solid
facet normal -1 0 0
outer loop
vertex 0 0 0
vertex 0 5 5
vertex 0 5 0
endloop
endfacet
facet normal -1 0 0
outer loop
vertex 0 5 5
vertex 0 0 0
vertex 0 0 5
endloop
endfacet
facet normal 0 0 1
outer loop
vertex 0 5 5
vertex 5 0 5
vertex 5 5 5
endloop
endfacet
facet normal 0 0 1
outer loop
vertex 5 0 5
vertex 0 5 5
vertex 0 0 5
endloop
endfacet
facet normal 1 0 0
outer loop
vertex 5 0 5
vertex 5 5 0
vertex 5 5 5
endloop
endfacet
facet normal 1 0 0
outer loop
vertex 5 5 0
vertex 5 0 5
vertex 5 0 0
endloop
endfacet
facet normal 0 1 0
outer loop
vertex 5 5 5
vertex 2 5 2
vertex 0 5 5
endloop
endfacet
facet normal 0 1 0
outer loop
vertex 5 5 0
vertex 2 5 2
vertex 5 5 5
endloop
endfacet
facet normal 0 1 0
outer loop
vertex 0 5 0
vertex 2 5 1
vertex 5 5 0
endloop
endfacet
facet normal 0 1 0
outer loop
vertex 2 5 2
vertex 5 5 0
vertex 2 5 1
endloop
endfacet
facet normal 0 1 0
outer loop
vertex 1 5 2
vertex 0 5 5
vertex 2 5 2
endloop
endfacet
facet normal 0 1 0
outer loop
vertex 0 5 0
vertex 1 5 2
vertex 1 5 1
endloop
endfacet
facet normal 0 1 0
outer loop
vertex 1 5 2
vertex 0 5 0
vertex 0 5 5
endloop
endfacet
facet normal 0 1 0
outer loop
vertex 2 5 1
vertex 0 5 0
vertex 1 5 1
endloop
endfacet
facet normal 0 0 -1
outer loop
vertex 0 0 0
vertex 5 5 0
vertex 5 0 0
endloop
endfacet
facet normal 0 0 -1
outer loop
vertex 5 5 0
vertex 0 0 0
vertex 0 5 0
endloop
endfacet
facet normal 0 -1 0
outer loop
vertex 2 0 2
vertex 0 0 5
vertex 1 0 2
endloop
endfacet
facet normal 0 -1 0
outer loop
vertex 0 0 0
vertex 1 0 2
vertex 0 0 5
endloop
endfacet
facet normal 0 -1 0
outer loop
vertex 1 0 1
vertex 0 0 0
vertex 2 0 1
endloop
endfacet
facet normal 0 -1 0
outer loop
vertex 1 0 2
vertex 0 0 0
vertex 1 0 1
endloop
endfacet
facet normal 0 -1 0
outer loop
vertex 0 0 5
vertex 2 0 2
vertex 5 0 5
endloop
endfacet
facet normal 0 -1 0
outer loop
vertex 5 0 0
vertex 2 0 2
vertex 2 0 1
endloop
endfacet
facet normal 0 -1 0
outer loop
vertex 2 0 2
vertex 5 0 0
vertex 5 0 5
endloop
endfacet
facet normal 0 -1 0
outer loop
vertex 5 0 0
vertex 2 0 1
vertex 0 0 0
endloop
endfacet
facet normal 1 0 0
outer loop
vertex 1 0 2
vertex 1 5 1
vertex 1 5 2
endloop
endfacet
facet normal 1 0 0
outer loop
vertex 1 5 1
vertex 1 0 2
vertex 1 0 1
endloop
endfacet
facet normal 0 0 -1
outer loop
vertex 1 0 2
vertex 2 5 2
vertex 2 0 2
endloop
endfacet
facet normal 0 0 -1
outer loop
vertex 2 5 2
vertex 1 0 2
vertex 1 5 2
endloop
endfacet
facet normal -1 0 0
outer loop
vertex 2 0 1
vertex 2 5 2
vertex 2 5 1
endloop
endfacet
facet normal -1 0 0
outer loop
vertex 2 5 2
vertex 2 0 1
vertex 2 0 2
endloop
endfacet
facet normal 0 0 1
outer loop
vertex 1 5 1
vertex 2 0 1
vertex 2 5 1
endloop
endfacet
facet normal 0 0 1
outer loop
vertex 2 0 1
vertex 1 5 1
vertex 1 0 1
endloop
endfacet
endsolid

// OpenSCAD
difference() {
  translate([2.5000000000, 2.5000000000, 2.5000000000]) {
    scale([5.0000000000, 5.0000000000, 5.0000000000]) {
      translate([-0.5000000000, -0.5000000000, -0.5000000000]) {
        cube([1, 1, 1]);
      }
    }
  }
  translate([1.5000000000, 2.5000000000, 1.5000000000]) {
    scale([1.0000000000, 5.0000000000, 1.0000000000]) {
      translate([-0.5000000000, -0.5000000000, -0.5000000000]) {
        cube([1, 1, 1]);
      }
    }
  }
}
